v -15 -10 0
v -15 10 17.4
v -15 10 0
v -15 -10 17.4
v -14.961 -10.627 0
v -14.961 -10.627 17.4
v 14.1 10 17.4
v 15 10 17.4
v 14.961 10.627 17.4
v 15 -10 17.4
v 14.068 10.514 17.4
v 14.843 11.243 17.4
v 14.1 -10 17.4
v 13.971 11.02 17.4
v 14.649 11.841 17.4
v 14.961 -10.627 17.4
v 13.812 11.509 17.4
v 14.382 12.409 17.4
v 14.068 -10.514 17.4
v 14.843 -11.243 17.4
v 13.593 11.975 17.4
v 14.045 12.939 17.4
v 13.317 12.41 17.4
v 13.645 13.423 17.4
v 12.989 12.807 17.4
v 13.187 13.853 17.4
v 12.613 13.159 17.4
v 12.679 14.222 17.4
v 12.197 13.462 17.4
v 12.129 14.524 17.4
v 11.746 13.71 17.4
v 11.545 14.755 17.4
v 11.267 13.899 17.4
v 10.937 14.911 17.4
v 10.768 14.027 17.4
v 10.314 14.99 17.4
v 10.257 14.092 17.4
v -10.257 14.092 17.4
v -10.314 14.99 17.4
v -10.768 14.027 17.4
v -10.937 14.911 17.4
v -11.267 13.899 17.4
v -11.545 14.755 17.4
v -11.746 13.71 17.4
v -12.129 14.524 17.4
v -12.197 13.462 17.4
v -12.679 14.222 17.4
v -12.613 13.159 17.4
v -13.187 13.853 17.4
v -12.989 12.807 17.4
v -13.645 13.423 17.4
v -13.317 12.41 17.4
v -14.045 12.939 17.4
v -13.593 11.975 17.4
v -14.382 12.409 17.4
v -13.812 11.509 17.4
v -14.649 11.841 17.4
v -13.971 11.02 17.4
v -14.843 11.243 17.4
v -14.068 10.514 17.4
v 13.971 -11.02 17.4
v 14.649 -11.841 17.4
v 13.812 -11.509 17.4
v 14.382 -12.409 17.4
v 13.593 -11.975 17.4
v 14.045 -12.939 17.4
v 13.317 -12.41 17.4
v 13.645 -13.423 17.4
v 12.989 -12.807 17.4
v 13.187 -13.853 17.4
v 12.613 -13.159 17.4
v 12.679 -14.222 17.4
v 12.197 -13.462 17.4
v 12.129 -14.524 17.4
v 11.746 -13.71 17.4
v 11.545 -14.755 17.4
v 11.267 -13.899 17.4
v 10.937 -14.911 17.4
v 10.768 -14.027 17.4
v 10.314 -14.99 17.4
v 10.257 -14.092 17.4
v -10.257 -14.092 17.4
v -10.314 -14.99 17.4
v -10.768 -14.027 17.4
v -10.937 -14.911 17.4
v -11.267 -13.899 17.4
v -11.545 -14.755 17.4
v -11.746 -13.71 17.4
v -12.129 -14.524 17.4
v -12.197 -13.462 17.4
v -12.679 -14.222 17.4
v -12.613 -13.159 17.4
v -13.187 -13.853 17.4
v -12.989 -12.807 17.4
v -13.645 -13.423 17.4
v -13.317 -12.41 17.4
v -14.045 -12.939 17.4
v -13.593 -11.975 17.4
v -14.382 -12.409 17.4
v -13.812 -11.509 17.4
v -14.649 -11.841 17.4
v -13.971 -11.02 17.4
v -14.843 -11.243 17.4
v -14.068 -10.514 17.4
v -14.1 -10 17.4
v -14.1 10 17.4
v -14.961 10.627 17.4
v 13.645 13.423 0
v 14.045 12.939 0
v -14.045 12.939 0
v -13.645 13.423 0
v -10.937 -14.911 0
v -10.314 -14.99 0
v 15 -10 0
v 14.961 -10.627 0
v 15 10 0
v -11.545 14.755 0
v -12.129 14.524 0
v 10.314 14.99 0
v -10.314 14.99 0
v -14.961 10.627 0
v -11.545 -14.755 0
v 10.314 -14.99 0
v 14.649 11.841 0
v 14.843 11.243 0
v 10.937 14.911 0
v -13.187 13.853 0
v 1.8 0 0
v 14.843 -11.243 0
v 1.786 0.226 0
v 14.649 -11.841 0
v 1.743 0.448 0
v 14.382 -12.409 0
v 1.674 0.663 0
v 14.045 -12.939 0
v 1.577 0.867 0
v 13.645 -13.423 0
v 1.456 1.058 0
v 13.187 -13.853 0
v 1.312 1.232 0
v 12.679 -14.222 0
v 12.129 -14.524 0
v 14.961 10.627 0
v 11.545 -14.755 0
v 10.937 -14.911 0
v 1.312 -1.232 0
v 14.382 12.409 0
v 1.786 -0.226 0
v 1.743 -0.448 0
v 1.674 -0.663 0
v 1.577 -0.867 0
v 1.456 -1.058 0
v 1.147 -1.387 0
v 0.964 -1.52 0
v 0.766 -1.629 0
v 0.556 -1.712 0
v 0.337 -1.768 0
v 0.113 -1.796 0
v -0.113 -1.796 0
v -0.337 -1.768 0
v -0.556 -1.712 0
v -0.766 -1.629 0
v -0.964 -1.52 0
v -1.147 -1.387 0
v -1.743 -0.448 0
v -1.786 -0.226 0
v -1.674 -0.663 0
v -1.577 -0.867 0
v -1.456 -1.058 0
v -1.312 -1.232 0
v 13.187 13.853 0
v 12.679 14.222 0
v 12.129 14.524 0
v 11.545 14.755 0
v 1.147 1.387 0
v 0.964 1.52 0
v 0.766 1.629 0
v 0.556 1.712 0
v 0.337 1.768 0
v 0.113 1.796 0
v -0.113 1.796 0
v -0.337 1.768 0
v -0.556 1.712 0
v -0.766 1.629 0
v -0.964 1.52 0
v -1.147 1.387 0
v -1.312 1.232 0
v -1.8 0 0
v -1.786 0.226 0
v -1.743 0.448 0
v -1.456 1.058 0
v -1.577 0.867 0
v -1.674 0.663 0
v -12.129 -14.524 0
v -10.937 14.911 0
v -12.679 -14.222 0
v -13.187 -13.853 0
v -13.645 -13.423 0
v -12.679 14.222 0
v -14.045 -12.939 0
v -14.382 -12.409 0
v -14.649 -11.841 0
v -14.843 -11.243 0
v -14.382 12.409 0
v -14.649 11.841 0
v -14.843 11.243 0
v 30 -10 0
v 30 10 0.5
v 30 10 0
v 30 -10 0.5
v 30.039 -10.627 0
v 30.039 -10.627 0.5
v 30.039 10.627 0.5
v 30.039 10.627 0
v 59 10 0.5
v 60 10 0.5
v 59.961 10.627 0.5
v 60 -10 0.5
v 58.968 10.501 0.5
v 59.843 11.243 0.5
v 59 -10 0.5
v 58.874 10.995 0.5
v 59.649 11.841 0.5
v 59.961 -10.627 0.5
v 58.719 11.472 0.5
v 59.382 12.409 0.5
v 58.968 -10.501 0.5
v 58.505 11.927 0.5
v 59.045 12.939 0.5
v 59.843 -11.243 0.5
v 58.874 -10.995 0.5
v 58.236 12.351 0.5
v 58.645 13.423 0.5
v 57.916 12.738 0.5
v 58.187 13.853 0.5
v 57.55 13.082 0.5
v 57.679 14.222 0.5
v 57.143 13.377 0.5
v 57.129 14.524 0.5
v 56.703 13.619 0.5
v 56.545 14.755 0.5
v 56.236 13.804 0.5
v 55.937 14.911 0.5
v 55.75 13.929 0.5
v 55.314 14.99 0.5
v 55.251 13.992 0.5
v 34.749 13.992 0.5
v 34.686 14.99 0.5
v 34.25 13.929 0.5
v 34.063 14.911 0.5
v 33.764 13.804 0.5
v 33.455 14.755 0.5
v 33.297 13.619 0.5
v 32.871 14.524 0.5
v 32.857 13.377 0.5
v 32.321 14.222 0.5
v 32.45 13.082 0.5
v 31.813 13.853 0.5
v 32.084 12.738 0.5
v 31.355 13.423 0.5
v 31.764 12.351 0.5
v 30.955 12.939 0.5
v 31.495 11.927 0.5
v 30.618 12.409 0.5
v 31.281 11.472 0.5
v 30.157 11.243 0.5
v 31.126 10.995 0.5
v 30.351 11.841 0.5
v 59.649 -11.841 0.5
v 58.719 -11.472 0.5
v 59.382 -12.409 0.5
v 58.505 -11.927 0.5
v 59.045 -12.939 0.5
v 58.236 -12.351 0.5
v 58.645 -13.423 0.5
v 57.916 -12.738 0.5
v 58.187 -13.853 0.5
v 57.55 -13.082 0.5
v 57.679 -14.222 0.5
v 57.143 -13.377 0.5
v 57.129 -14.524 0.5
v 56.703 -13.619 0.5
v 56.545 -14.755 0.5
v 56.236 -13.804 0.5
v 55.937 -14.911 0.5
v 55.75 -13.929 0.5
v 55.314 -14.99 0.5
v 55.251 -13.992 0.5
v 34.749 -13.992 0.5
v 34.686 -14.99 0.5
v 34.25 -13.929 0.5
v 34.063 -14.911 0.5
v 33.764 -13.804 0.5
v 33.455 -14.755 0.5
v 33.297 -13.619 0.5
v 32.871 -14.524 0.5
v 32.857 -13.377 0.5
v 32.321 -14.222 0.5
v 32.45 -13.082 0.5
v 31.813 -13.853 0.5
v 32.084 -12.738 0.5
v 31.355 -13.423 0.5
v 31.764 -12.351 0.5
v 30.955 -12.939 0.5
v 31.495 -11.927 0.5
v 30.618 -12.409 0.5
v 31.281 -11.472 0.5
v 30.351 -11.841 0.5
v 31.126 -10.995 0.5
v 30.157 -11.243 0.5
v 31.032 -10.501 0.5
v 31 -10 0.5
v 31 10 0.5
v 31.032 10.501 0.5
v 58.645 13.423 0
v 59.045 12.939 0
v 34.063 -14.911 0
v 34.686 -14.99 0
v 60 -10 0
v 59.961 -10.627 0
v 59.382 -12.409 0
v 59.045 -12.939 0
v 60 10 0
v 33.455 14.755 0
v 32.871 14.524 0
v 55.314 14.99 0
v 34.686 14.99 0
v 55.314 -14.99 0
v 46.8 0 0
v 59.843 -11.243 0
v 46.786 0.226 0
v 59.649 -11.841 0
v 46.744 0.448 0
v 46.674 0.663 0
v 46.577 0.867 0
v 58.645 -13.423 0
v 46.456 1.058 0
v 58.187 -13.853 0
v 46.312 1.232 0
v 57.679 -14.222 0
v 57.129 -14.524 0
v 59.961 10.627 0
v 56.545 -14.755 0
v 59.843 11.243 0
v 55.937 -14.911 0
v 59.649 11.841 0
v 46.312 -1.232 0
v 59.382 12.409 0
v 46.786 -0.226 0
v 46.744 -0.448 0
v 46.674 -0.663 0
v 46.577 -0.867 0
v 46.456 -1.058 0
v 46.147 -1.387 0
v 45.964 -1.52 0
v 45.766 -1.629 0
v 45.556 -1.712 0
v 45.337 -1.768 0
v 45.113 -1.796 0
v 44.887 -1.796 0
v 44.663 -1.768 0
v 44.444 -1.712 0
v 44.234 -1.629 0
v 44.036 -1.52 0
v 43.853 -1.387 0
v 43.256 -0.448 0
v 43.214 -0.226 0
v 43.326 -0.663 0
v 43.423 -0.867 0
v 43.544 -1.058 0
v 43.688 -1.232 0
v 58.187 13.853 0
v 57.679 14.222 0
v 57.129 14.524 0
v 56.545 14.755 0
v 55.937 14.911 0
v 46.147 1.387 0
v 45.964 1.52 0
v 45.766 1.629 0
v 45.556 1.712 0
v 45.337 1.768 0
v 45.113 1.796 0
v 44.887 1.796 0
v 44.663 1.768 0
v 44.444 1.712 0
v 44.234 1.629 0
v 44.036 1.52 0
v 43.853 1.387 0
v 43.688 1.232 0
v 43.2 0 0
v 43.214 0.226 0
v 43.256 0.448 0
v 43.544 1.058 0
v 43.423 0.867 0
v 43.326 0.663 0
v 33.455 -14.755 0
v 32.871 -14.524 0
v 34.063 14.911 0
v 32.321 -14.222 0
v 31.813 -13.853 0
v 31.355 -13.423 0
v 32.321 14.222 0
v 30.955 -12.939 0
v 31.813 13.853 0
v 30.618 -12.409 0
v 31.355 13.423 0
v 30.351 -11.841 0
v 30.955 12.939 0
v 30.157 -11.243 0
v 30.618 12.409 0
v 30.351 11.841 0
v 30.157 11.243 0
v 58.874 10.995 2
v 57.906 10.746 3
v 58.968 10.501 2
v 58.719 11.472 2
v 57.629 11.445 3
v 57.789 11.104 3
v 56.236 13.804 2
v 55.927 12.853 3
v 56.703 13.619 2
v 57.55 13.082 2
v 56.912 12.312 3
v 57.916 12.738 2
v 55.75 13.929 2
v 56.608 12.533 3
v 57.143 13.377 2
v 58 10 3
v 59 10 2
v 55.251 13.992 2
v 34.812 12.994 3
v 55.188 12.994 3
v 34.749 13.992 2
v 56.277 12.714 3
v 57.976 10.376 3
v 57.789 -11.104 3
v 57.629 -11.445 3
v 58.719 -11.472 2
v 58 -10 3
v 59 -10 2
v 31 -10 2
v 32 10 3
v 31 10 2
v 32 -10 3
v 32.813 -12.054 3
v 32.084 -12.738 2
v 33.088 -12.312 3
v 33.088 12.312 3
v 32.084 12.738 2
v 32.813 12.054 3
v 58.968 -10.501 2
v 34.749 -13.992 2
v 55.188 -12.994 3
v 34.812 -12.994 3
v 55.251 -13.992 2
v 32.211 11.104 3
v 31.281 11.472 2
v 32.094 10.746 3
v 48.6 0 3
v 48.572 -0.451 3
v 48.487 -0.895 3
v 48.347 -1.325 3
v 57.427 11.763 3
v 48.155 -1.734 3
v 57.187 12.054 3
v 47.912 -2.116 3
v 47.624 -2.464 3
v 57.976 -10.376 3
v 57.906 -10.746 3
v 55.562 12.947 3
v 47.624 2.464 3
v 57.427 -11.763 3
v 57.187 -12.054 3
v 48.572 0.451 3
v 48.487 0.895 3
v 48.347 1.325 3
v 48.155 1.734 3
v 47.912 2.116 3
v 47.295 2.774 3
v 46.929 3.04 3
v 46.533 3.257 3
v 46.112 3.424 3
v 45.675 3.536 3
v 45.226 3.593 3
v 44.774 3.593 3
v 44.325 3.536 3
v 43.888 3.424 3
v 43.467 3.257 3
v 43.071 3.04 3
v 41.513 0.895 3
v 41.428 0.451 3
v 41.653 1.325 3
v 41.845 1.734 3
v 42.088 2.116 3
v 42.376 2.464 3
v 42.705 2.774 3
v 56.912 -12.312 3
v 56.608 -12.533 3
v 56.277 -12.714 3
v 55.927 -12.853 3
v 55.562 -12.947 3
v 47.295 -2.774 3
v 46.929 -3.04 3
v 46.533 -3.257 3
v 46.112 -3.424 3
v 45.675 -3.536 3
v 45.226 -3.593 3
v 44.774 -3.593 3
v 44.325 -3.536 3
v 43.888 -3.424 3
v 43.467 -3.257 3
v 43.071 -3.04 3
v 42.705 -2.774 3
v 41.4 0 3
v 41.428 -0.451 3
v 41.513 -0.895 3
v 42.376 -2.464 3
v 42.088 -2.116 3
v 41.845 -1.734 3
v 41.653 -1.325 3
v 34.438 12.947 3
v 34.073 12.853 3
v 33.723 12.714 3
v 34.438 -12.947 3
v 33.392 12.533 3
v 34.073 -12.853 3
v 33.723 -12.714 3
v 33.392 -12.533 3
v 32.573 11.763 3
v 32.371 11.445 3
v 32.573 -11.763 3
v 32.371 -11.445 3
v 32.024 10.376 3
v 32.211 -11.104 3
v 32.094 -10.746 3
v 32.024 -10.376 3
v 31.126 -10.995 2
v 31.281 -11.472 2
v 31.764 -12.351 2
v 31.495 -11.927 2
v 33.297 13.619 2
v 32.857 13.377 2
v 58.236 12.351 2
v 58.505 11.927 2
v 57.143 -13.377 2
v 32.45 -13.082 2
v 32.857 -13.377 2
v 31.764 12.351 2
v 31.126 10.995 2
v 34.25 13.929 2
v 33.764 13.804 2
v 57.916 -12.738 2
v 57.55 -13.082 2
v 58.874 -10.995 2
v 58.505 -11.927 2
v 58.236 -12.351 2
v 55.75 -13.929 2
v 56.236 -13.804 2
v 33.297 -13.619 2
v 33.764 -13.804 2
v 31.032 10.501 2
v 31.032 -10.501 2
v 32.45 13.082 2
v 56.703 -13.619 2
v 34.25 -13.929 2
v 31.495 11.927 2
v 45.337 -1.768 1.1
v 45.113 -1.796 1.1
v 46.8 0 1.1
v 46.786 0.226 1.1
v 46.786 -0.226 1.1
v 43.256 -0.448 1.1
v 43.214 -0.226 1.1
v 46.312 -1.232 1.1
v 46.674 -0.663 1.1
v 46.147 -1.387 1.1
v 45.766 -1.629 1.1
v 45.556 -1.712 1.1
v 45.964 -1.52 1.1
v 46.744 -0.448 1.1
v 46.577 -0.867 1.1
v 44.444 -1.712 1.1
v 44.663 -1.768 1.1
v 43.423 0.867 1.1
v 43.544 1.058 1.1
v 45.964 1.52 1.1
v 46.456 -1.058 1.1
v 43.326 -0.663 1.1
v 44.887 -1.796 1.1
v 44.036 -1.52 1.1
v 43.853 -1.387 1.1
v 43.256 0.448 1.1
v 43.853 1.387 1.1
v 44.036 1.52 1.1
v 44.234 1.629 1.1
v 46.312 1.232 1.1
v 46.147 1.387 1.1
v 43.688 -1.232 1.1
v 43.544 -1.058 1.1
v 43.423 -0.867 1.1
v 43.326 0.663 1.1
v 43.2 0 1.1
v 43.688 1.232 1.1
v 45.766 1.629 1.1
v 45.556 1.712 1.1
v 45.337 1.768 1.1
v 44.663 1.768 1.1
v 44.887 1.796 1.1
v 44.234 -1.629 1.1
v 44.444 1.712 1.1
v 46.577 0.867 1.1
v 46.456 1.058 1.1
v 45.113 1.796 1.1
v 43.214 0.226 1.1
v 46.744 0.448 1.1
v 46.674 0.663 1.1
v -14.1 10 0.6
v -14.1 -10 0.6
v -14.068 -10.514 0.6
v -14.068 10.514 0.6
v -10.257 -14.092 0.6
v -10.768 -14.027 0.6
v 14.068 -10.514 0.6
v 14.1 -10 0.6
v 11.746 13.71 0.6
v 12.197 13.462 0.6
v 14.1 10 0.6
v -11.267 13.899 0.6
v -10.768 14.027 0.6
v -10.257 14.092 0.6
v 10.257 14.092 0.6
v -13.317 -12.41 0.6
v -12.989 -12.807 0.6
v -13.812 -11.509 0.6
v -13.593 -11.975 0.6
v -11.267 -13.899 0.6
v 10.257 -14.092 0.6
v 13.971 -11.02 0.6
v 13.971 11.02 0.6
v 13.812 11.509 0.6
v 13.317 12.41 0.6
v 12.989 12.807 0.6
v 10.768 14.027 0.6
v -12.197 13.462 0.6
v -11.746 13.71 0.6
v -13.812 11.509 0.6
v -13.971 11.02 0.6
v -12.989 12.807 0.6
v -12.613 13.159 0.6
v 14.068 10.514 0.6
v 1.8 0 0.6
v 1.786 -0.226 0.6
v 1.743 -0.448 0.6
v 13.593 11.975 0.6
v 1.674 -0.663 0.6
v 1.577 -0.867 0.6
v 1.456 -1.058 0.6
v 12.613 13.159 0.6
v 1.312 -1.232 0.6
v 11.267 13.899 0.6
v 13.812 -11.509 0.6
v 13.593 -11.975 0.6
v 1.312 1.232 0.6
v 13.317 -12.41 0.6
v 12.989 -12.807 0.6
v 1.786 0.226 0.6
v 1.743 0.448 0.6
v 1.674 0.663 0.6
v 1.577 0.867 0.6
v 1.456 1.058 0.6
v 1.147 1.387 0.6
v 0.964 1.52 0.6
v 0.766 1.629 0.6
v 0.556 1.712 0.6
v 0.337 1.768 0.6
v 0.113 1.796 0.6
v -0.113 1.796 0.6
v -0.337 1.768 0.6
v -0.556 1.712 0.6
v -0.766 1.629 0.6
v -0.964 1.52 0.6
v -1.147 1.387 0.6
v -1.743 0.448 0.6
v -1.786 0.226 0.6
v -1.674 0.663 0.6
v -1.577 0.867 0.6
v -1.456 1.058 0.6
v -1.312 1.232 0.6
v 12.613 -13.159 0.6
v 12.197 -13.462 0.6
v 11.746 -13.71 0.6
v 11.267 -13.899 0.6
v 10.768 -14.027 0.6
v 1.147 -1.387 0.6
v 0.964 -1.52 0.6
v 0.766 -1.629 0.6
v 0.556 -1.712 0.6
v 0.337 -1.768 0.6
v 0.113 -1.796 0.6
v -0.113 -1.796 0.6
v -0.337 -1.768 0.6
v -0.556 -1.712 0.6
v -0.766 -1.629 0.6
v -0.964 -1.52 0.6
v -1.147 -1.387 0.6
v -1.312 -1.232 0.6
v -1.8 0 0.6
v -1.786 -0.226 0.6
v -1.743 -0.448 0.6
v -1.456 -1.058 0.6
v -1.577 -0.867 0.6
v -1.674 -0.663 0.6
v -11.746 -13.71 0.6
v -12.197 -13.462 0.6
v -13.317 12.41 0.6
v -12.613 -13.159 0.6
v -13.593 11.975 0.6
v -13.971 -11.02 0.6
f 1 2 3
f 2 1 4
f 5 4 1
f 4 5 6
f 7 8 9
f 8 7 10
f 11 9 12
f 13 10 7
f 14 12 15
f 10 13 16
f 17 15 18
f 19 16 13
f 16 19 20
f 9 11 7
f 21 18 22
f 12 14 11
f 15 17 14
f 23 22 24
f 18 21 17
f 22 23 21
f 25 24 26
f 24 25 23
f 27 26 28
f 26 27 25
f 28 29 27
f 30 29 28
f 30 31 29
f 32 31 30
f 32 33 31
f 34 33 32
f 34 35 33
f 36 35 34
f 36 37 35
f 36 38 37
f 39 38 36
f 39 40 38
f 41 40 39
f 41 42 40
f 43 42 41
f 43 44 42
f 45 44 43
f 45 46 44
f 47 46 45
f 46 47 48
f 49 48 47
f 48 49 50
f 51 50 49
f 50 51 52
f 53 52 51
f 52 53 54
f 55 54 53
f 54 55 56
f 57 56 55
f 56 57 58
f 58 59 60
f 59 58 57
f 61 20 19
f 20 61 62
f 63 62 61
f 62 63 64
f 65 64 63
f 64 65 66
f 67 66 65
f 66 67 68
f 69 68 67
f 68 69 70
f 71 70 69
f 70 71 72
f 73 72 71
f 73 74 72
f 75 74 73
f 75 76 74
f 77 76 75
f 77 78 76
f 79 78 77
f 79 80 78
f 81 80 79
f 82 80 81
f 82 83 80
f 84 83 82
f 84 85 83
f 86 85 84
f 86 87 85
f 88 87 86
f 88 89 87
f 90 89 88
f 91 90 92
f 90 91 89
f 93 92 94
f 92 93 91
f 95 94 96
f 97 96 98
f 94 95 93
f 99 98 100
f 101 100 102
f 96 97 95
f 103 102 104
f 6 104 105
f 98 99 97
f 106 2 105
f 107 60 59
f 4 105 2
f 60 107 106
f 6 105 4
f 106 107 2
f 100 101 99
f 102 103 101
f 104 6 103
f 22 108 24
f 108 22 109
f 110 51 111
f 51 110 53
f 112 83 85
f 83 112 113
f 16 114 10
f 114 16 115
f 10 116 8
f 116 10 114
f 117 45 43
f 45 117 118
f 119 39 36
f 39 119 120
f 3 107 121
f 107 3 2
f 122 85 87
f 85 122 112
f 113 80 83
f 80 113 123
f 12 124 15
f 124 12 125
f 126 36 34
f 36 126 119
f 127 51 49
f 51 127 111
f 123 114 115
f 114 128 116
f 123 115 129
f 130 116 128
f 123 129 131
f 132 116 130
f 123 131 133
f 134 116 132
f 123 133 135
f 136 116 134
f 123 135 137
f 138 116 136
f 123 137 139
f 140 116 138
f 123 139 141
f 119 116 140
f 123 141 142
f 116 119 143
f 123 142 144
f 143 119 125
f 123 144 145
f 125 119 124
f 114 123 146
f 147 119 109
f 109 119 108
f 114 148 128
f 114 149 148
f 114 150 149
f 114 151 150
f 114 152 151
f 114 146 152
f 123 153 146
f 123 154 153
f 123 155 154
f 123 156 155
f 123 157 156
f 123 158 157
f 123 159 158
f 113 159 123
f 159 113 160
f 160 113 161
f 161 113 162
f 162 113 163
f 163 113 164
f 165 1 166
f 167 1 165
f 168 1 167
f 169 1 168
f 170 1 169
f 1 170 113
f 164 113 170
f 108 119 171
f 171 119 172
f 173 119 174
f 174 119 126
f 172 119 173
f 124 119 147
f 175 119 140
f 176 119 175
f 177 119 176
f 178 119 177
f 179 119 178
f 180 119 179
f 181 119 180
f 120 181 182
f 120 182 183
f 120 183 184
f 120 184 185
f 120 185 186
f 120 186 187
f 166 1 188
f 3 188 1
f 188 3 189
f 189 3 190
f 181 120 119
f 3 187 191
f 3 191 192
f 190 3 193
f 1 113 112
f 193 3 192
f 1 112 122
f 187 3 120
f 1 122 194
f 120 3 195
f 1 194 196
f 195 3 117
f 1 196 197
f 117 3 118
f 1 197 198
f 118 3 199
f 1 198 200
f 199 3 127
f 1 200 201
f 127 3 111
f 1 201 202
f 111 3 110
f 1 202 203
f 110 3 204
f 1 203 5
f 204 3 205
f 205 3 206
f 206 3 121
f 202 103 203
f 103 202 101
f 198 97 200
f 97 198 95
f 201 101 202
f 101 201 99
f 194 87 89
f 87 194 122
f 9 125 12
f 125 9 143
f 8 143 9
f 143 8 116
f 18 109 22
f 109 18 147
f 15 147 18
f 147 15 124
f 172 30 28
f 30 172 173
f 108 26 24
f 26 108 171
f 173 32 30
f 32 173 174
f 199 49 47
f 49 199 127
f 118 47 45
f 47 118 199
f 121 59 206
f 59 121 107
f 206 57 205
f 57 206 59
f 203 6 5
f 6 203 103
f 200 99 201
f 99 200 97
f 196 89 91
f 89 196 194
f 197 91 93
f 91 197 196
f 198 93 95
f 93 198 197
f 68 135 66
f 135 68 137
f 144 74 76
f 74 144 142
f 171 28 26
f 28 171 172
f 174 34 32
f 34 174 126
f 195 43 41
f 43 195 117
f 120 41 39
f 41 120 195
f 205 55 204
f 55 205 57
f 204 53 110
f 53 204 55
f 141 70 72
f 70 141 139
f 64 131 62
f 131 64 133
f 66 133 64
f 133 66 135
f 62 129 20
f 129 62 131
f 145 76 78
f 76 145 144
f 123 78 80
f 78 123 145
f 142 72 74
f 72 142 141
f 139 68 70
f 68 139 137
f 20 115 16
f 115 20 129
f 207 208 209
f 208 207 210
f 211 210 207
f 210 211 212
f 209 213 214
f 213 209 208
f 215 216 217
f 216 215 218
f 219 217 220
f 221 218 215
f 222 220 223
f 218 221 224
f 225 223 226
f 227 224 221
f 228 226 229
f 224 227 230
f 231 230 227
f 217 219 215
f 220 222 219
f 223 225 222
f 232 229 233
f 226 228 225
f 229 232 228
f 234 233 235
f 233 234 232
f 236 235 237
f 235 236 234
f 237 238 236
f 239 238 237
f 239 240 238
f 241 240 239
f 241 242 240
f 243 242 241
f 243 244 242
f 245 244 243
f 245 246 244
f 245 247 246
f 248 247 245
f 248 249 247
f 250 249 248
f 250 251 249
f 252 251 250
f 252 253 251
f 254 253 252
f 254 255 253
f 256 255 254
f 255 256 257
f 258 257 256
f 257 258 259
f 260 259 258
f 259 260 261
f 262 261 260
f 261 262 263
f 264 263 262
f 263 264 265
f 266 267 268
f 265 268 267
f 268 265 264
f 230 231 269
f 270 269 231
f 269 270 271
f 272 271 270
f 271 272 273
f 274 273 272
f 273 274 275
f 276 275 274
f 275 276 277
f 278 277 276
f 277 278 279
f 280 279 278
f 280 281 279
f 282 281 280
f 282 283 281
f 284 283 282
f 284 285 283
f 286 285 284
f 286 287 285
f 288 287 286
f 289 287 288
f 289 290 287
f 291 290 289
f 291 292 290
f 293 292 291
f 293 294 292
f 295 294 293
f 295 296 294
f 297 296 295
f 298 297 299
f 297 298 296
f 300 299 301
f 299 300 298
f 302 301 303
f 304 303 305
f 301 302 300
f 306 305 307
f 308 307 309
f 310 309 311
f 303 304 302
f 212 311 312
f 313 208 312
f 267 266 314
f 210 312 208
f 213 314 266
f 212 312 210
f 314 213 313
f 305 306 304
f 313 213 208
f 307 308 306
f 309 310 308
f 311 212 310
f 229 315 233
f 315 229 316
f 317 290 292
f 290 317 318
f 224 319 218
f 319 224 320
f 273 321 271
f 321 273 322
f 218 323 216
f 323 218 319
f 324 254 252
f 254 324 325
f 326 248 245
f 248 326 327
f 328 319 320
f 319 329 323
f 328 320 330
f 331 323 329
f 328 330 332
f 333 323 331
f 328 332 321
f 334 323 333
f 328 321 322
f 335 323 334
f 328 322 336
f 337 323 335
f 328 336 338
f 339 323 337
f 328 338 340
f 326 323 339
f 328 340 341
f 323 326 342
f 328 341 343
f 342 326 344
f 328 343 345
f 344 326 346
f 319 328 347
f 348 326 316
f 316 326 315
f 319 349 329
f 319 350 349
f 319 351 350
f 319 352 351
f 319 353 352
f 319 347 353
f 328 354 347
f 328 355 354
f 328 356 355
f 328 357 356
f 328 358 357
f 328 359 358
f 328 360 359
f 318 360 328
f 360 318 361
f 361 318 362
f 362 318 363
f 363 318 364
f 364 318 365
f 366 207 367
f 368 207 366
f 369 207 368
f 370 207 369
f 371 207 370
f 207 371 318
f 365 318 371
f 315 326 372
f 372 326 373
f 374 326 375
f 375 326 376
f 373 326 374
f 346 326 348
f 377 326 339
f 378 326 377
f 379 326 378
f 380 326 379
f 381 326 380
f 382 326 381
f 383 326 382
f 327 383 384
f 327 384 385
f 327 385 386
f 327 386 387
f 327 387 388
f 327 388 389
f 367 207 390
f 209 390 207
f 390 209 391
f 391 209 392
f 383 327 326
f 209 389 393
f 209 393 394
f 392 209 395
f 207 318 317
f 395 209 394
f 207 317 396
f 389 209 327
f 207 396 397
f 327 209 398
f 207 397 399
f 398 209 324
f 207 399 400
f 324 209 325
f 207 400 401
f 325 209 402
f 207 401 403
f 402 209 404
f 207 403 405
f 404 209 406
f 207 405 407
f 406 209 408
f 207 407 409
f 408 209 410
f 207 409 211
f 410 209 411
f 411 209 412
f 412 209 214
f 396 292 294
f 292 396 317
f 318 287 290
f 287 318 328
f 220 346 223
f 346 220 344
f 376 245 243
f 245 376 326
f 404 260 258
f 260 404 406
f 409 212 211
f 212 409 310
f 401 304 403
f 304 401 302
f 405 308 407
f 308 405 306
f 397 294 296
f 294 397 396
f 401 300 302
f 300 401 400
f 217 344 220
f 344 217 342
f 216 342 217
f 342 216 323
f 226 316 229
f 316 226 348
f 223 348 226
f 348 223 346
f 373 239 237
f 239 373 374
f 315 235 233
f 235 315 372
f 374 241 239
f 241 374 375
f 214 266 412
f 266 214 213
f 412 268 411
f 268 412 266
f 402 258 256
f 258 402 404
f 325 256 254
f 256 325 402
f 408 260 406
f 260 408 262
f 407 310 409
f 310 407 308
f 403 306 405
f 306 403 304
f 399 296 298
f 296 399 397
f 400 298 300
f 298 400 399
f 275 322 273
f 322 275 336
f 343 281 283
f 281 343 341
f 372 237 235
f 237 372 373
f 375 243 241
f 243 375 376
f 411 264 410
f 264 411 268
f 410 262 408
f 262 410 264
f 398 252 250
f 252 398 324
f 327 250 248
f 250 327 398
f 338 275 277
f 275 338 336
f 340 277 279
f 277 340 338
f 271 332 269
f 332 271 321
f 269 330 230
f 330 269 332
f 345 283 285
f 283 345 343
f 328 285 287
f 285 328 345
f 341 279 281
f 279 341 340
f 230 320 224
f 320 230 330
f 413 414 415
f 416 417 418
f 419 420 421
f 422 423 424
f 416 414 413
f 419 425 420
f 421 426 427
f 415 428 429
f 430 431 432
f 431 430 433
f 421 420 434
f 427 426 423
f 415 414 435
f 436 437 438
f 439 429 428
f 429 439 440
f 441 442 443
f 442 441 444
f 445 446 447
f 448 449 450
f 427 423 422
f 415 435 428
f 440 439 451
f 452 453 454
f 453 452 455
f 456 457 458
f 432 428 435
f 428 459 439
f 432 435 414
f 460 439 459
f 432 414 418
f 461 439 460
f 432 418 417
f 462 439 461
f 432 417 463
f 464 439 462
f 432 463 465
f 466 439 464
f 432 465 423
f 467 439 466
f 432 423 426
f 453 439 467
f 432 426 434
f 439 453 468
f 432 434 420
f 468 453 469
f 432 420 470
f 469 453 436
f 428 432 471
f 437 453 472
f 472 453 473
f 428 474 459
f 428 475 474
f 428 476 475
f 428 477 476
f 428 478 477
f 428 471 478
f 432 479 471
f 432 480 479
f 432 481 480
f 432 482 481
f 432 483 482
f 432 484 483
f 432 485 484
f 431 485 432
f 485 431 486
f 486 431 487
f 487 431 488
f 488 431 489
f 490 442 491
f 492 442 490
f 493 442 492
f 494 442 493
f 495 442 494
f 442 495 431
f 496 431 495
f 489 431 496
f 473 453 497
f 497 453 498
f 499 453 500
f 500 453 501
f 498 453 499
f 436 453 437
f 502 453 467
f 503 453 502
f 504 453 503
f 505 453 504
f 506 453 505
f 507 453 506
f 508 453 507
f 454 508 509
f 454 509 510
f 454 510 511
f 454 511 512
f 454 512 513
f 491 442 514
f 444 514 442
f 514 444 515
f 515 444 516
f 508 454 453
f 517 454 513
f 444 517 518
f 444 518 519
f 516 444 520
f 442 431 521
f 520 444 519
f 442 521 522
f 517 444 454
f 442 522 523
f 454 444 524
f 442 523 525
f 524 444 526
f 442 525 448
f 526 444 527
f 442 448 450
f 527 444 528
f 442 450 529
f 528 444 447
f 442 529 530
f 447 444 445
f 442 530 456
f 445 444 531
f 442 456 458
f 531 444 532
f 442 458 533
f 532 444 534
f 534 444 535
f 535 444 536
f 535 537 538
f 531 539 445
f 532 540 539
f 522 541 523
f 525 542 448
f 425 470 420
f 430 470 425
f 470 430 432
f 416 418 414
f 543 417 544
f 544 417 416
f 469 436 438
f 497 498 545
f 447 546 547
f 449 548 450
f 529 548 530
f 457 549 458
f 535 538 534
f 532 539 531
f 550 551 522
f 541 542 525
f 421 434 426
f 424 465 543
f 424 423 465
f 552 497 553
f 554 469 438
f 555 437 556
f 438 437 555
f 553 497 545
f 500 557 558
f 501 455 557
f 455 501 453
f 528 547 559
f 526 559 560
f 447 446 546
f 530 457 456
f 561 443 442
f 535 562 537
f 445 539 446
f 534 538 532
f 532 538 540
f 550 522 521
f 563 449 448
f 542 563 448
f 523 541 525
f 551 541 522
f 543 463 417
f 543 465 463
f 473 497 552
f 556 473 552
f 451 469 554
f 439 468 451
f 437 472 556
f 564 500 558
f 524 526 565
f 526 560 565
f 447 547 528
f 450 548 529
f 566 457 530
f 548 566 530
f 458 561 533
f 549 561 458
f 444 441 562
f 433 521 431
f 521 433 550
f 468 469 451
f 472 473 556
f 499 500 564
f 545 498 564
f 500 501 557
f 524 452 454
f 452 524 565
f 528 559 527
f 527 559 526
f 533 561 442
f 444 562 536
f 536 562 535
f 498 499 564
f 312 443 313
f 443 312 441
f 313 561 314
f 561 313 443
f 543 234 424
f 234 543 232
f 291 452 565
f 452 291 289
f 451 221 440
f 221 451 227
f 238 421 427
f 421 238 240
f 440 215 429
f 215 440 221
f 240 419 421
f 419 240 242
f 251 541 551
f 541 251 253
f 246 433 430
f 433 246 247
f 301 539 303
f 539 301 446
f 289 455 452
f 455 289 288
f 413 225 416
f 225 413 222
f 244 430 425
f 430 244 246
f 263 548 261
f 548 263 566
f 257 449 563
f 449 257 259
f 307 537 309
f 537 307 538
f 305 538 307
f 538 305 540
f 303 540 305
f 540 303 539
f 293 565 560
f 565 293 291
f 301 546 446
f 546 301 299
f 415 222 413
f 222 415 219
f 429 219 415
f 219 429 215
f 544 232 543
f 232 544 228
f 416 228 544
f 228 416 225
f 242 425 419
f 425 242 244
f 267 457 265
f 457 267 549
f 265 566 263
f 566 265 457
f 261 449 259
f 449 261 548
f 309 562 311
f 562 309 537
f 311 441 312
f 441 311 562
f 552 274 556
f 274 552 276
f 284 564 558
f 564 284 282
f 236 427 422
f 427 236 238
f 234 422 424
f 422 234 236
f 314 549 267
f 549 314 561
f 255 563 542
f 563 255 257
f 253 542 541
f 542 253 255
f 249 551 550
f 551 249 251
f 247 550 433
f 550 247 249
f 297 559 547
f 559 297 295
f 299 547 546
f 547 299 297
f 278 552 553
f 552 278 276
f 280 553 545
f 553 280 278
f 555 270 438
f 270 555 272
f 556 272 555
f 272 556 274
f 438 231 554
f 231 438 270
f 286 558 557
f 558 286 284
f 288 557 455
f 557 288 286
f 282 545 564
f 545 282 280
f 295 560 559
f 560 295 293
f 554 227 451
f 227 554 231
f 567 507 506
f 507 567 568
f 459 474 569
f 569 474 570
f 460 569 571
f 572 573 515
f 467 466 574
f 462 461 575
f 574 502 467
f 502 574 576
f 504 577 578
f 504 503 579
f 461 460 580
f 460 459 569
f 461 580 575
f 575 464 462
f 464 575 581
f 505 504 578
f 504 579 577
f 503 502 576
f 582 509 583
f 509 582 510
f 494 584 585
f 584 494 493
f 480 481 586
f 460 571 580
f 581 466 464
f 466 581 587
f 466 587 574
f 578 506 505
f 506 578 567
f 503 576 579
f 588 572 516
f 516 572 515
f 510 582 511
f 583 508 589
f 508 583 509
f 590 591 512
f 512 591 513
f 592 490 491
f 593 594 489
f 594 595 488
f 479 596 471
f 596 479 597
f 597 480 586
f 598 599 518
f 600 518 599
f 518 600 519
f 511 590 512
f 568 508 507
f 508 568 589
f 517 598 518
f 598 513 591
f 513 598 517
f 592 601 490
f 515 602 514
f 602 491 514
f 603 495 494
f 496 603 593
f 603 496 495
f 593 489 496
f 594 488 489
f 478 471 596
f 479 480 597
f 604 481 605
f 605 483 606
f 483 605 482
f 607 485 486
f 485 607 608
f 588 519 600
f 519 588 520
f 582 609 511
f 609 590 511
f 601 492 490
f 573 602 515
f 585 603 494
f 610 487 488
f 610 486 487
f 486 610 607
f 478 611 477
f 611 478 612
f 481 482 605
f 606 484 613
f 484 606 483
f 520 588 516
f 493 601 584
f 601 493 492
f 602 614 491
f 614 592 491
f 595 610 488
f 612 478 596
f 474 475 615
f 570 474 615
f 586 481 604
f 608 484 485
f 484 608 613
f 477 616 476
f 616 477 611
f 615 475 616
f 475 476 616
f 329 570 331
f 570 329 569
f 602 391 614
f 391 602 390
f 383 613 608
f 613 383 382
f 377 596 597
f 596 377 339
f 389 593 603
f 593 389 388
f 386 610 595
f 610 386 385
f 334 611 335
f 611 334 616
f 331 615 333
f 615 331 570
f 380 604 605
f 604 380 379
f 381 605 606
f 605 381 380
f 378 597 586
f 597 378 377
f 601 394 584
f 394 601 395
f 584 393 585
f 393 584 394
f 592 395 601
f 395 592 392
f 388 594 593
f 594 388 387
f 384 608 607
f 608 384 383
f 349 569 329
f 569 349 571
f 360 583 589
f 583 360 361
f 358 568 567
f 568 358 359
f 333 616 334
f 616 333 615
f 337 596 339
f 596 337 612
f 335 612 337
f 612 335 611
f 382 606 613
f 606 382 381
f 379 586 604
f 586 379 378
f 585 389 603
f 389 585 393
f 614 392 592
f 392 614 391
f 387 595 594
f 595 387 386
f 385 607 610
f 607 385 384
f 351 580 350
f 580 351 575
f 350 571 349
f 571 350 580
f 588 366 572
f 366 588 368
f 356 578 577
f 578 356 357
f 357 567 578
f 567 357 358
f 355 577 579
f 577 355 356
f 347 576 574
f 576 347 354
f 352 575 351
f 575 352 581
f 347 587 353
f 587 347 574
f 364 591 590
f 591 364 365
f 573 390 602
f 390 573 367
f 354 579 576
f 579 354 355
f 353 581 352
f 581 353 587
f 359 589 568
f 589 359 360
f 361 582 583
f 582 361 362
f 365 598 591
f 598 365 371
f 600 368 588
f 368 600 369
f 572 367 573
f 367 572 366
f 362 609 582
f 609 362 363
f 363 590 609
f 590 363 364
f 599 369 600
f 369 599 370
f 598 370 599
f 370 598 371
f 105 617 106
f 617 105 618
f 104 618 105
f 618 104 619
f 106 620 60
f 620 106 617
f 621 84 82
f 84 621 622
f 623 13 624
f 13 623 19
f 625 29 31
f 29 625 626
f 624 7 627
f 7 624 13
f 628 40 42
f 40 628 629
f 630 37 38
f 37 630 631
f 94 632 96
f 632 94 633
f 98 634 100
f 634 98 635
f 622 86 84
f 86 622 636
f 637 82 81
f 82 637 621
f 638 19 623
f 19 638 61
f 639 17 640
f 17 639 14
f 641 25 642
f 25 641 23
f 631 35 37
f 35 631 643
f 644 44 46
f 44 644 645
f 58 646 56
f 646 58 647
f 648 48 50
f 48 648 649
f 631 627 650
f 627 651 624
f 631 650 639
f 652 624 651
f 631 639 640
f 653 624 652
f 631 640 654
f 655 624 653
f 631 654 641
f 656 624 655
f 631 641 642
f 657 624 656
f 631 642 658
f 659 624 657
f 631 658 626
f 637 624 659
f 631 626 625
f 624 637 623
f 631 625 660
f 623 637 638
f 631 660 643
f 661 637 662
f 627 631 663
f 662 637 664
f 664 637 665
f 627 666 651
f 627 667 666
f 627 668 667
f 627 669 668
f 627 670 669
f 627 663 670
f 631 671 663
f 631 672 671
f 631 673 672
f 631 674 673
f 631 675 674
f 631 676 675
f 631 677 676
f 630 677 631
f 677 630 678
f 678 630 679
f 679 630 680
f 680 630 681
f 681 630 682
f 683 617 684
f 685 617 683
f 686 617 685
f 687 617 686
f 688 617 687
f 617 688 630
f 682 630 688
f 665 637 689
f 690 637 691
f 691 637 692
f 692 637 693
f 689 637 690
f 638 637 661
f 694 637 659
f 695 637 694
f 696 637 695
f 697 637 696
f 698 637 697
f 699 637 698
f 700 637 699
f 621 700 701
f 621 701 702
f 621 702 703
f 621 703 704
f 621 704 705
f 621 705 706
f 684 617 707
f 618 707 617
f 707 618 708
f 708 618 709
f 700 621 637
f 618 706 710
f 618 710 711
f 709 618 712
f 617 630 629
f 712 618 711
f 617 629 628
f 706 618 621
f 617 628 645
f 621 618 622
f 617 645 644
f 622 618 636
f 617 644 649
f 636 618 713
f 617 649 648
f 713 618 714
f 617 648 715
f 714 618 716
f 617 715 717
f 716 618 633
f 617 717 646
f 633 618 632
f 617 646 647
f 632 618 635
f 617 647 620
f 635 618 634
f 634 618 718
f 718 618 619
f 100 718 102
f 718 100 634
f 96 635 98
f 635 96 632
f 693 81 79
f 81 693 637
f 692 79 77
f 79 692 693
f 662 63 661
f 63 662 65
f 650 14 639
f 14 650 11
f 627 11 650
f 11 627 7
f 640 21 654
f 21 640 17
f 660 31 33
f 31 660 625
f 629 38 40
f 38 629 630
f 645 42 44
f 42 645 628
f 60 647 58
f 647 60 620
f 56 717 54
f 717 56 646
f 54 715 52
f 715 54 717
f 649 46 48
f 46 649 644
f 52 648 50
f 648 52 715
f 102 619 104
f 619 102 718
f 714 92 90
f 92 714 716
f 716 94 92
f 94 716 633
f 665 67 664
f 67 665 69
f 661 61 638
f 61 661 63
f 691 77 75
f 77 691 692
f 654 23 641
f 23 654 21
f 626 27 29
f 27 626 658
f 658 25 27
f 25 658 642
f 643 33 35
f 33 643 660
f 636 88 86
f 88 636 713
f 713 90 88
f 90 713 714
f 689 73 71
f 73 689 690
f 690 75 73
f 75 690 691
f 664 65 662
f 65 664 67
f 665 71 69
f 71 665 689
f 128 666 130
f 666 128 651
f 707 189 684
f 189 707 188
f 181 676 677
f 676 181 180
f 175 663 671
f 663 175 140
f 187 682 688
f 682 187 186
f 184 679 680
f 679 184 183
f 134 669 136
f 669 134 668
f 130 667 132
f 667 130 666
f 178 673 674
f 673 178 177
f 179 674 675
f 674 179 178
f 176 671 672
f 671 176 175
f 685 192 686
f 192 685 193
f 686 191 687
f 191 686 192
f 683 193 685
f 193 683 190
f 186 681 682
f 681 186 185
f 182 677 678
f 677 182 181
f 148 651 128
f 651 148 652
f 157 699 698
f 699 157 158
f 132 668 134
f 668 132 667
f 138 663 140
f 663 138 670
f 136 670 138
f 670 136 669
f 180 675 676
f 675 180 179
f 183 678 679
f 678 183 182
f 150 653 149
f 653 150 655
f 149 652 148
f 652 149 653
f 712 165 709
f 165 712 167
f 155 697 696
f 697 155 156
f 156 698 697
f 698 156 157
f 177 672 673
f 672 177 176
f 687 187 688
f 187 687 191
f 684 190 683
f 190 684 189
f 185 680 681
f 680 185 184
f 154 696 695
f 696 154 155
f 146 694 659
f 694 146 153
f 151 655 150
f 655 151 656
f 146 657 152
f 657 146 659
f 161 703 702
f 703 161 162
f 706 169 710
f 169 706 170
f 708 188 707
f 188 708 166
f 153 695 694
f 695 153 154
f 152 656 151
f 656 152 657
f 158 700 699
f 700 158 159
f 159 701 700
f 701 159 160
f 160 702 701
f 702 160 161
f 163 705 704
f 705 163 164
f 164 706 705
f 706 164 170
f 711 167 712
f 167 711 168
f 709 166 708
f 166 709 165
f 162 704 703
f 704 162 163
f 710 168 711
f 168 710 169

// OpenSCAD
$fn = 50;


difference() {
	union() {
		hull() {
			translate(v = [-10.0000000000, 10.0000000000, 0]) {
				cylinder(h = 17.4000000000, r = 5);
			}
			translate(v = [10.0000000000, 10.0000000000, 0]) {
				cylinder(h = 17.4000000000, r = 5);
			}
			translate(v = [-10.0000000000, -10.0000000000, 0]) {
				cylinder(h = 17.4000000000, r = 5);
			}
			translate(v = [10.0000000000, -10.0000000000, 0]) {
				cylinder(h = 17.4000000000, r = 5);
			}
		}
		translate(v = [45, 0, 0]) {
			hull() {
				translate(v = [-10.0000000000, 10.0000000000, 0]) {
					cylinder(h = 0.5000000000, r = 5);
				}
				translate(v = [10.0000000000, 10.0000000000, 0]) {
					cylinder(h = 0.5000000000, r = 5);
				}
				translate(v = [-10.0000000000, -10.0000000000, 0]) {
					cylinder(h = 0.5000000000, r = 5);
				}
				translate(v = [10.0000000000, -10.0000000000, 0]) {
					cylinder(h = 0.5000000000, r = 5);
				}
			}
		}
		translate(v = [45.0000000000, 0.0000000000, 2]) {
			hull() {
				translate(v = [-10.0000000000, 10.0000000000, 0]) {
					cylinder(h = 1, r1 = 4.0000000000, r2 = 3.0000000000);
				}
				translate(v = [10.0000000000, 10.0000000000, 0]) {
					cylinder(h = 1, r1 = 4.0000000000, r2 = 3.0000000000);
				}
				translate(v = [-10.0000000000, -10.0000000000, 0]) {
					cylinder(h = 1, r1 = 4.0000000000, r2 = 3.0000000000);
				}
				translate(v = [10.0000000000, -10.0000000000, 0]) {
					cylinder(h = 1, r1 = 4.0000000000, r2 = 3.0000000000);
				}
			}
		}
		translate(v = [45.0000000000, 0.0000000000, 0.5000000000]) {
			hull() {
				translate(v = [-10.0000000000, 10.0000000000, 0]) {
					cylinder(h = 1.5000000000, r1 = 4.0000000000, r2 = 4.0000000000);
				}
				translate(v = [10.0000000000, 10.0000000000, 0]) {
					cylinder(h = 1.5000000000, r1 = 4.0000000000, r2 = 4.0000000000);
				}
				translate(v = [-10.0000000000, -10.0000000000, 0]) {
					cylinder(h = 1.5000000000, r1 = 4.0000000000, r2 = 4.0000000000);
				}
				translate(v = [10.0000000000, -10.0000000000, 0]) {
					cylinder(h = 1.5000000000, r1 = 4.0000000000, r2 = 4.0000000000);
				}
			}
		}
	}
	union() {
		translate(v = [45.0000000000, 0.0000000000, 3]) {
			rotate(a = [0, 0, 0]) {
				difference() {
					union() {
						#translate(v = [0, 0, -3.0000000000]) {
							cylinder(h = 3, r = 1.5000000000);
						}
						#translate(v = [0, 0, -1.9000000000]) {
							cylinder(h = 1.9000000000, r1 = 1.8000000000, r2 = 3.6000000000);
						}
						#translate(v = [0, 0, -3.0000000000]) {
							cylinder(h = 3, r = 1.8000000000);
						}
						#translate(v = [0, 0, -3.0000000000]) {
							cylinder(h = 3, r = 1.5000000000);
						}
					}
					union();
				}
			}
		}
		translate(v = [0, 0, 0.6000000000]) {
			hull() {
				translate(v = [-10.0000000000, 10.0000000000, 0]) {
					cylinder(h = 16.8000000000, r = 4.1000000000);
				}
				translate(v = [10.0000000000, 10.0000000000, 0]) {
					cylinder(h = 16.8000000000, r = 4.1000000000);
				}
				translate(v = [-10.0000000000, -10.0000000000, 0]) {
					cylinder(h = 16.8000000000, r = 4.1000000000);
				}
				translate(v = [10.0000000000, -10.0000000000, 0]) {
					cylinder(h = 16.8000000000, r = 4.1000000000);
				}
			}
		}
		#cylinder(h = 1.5000000000, r = 1.8000000000);
	}
}
